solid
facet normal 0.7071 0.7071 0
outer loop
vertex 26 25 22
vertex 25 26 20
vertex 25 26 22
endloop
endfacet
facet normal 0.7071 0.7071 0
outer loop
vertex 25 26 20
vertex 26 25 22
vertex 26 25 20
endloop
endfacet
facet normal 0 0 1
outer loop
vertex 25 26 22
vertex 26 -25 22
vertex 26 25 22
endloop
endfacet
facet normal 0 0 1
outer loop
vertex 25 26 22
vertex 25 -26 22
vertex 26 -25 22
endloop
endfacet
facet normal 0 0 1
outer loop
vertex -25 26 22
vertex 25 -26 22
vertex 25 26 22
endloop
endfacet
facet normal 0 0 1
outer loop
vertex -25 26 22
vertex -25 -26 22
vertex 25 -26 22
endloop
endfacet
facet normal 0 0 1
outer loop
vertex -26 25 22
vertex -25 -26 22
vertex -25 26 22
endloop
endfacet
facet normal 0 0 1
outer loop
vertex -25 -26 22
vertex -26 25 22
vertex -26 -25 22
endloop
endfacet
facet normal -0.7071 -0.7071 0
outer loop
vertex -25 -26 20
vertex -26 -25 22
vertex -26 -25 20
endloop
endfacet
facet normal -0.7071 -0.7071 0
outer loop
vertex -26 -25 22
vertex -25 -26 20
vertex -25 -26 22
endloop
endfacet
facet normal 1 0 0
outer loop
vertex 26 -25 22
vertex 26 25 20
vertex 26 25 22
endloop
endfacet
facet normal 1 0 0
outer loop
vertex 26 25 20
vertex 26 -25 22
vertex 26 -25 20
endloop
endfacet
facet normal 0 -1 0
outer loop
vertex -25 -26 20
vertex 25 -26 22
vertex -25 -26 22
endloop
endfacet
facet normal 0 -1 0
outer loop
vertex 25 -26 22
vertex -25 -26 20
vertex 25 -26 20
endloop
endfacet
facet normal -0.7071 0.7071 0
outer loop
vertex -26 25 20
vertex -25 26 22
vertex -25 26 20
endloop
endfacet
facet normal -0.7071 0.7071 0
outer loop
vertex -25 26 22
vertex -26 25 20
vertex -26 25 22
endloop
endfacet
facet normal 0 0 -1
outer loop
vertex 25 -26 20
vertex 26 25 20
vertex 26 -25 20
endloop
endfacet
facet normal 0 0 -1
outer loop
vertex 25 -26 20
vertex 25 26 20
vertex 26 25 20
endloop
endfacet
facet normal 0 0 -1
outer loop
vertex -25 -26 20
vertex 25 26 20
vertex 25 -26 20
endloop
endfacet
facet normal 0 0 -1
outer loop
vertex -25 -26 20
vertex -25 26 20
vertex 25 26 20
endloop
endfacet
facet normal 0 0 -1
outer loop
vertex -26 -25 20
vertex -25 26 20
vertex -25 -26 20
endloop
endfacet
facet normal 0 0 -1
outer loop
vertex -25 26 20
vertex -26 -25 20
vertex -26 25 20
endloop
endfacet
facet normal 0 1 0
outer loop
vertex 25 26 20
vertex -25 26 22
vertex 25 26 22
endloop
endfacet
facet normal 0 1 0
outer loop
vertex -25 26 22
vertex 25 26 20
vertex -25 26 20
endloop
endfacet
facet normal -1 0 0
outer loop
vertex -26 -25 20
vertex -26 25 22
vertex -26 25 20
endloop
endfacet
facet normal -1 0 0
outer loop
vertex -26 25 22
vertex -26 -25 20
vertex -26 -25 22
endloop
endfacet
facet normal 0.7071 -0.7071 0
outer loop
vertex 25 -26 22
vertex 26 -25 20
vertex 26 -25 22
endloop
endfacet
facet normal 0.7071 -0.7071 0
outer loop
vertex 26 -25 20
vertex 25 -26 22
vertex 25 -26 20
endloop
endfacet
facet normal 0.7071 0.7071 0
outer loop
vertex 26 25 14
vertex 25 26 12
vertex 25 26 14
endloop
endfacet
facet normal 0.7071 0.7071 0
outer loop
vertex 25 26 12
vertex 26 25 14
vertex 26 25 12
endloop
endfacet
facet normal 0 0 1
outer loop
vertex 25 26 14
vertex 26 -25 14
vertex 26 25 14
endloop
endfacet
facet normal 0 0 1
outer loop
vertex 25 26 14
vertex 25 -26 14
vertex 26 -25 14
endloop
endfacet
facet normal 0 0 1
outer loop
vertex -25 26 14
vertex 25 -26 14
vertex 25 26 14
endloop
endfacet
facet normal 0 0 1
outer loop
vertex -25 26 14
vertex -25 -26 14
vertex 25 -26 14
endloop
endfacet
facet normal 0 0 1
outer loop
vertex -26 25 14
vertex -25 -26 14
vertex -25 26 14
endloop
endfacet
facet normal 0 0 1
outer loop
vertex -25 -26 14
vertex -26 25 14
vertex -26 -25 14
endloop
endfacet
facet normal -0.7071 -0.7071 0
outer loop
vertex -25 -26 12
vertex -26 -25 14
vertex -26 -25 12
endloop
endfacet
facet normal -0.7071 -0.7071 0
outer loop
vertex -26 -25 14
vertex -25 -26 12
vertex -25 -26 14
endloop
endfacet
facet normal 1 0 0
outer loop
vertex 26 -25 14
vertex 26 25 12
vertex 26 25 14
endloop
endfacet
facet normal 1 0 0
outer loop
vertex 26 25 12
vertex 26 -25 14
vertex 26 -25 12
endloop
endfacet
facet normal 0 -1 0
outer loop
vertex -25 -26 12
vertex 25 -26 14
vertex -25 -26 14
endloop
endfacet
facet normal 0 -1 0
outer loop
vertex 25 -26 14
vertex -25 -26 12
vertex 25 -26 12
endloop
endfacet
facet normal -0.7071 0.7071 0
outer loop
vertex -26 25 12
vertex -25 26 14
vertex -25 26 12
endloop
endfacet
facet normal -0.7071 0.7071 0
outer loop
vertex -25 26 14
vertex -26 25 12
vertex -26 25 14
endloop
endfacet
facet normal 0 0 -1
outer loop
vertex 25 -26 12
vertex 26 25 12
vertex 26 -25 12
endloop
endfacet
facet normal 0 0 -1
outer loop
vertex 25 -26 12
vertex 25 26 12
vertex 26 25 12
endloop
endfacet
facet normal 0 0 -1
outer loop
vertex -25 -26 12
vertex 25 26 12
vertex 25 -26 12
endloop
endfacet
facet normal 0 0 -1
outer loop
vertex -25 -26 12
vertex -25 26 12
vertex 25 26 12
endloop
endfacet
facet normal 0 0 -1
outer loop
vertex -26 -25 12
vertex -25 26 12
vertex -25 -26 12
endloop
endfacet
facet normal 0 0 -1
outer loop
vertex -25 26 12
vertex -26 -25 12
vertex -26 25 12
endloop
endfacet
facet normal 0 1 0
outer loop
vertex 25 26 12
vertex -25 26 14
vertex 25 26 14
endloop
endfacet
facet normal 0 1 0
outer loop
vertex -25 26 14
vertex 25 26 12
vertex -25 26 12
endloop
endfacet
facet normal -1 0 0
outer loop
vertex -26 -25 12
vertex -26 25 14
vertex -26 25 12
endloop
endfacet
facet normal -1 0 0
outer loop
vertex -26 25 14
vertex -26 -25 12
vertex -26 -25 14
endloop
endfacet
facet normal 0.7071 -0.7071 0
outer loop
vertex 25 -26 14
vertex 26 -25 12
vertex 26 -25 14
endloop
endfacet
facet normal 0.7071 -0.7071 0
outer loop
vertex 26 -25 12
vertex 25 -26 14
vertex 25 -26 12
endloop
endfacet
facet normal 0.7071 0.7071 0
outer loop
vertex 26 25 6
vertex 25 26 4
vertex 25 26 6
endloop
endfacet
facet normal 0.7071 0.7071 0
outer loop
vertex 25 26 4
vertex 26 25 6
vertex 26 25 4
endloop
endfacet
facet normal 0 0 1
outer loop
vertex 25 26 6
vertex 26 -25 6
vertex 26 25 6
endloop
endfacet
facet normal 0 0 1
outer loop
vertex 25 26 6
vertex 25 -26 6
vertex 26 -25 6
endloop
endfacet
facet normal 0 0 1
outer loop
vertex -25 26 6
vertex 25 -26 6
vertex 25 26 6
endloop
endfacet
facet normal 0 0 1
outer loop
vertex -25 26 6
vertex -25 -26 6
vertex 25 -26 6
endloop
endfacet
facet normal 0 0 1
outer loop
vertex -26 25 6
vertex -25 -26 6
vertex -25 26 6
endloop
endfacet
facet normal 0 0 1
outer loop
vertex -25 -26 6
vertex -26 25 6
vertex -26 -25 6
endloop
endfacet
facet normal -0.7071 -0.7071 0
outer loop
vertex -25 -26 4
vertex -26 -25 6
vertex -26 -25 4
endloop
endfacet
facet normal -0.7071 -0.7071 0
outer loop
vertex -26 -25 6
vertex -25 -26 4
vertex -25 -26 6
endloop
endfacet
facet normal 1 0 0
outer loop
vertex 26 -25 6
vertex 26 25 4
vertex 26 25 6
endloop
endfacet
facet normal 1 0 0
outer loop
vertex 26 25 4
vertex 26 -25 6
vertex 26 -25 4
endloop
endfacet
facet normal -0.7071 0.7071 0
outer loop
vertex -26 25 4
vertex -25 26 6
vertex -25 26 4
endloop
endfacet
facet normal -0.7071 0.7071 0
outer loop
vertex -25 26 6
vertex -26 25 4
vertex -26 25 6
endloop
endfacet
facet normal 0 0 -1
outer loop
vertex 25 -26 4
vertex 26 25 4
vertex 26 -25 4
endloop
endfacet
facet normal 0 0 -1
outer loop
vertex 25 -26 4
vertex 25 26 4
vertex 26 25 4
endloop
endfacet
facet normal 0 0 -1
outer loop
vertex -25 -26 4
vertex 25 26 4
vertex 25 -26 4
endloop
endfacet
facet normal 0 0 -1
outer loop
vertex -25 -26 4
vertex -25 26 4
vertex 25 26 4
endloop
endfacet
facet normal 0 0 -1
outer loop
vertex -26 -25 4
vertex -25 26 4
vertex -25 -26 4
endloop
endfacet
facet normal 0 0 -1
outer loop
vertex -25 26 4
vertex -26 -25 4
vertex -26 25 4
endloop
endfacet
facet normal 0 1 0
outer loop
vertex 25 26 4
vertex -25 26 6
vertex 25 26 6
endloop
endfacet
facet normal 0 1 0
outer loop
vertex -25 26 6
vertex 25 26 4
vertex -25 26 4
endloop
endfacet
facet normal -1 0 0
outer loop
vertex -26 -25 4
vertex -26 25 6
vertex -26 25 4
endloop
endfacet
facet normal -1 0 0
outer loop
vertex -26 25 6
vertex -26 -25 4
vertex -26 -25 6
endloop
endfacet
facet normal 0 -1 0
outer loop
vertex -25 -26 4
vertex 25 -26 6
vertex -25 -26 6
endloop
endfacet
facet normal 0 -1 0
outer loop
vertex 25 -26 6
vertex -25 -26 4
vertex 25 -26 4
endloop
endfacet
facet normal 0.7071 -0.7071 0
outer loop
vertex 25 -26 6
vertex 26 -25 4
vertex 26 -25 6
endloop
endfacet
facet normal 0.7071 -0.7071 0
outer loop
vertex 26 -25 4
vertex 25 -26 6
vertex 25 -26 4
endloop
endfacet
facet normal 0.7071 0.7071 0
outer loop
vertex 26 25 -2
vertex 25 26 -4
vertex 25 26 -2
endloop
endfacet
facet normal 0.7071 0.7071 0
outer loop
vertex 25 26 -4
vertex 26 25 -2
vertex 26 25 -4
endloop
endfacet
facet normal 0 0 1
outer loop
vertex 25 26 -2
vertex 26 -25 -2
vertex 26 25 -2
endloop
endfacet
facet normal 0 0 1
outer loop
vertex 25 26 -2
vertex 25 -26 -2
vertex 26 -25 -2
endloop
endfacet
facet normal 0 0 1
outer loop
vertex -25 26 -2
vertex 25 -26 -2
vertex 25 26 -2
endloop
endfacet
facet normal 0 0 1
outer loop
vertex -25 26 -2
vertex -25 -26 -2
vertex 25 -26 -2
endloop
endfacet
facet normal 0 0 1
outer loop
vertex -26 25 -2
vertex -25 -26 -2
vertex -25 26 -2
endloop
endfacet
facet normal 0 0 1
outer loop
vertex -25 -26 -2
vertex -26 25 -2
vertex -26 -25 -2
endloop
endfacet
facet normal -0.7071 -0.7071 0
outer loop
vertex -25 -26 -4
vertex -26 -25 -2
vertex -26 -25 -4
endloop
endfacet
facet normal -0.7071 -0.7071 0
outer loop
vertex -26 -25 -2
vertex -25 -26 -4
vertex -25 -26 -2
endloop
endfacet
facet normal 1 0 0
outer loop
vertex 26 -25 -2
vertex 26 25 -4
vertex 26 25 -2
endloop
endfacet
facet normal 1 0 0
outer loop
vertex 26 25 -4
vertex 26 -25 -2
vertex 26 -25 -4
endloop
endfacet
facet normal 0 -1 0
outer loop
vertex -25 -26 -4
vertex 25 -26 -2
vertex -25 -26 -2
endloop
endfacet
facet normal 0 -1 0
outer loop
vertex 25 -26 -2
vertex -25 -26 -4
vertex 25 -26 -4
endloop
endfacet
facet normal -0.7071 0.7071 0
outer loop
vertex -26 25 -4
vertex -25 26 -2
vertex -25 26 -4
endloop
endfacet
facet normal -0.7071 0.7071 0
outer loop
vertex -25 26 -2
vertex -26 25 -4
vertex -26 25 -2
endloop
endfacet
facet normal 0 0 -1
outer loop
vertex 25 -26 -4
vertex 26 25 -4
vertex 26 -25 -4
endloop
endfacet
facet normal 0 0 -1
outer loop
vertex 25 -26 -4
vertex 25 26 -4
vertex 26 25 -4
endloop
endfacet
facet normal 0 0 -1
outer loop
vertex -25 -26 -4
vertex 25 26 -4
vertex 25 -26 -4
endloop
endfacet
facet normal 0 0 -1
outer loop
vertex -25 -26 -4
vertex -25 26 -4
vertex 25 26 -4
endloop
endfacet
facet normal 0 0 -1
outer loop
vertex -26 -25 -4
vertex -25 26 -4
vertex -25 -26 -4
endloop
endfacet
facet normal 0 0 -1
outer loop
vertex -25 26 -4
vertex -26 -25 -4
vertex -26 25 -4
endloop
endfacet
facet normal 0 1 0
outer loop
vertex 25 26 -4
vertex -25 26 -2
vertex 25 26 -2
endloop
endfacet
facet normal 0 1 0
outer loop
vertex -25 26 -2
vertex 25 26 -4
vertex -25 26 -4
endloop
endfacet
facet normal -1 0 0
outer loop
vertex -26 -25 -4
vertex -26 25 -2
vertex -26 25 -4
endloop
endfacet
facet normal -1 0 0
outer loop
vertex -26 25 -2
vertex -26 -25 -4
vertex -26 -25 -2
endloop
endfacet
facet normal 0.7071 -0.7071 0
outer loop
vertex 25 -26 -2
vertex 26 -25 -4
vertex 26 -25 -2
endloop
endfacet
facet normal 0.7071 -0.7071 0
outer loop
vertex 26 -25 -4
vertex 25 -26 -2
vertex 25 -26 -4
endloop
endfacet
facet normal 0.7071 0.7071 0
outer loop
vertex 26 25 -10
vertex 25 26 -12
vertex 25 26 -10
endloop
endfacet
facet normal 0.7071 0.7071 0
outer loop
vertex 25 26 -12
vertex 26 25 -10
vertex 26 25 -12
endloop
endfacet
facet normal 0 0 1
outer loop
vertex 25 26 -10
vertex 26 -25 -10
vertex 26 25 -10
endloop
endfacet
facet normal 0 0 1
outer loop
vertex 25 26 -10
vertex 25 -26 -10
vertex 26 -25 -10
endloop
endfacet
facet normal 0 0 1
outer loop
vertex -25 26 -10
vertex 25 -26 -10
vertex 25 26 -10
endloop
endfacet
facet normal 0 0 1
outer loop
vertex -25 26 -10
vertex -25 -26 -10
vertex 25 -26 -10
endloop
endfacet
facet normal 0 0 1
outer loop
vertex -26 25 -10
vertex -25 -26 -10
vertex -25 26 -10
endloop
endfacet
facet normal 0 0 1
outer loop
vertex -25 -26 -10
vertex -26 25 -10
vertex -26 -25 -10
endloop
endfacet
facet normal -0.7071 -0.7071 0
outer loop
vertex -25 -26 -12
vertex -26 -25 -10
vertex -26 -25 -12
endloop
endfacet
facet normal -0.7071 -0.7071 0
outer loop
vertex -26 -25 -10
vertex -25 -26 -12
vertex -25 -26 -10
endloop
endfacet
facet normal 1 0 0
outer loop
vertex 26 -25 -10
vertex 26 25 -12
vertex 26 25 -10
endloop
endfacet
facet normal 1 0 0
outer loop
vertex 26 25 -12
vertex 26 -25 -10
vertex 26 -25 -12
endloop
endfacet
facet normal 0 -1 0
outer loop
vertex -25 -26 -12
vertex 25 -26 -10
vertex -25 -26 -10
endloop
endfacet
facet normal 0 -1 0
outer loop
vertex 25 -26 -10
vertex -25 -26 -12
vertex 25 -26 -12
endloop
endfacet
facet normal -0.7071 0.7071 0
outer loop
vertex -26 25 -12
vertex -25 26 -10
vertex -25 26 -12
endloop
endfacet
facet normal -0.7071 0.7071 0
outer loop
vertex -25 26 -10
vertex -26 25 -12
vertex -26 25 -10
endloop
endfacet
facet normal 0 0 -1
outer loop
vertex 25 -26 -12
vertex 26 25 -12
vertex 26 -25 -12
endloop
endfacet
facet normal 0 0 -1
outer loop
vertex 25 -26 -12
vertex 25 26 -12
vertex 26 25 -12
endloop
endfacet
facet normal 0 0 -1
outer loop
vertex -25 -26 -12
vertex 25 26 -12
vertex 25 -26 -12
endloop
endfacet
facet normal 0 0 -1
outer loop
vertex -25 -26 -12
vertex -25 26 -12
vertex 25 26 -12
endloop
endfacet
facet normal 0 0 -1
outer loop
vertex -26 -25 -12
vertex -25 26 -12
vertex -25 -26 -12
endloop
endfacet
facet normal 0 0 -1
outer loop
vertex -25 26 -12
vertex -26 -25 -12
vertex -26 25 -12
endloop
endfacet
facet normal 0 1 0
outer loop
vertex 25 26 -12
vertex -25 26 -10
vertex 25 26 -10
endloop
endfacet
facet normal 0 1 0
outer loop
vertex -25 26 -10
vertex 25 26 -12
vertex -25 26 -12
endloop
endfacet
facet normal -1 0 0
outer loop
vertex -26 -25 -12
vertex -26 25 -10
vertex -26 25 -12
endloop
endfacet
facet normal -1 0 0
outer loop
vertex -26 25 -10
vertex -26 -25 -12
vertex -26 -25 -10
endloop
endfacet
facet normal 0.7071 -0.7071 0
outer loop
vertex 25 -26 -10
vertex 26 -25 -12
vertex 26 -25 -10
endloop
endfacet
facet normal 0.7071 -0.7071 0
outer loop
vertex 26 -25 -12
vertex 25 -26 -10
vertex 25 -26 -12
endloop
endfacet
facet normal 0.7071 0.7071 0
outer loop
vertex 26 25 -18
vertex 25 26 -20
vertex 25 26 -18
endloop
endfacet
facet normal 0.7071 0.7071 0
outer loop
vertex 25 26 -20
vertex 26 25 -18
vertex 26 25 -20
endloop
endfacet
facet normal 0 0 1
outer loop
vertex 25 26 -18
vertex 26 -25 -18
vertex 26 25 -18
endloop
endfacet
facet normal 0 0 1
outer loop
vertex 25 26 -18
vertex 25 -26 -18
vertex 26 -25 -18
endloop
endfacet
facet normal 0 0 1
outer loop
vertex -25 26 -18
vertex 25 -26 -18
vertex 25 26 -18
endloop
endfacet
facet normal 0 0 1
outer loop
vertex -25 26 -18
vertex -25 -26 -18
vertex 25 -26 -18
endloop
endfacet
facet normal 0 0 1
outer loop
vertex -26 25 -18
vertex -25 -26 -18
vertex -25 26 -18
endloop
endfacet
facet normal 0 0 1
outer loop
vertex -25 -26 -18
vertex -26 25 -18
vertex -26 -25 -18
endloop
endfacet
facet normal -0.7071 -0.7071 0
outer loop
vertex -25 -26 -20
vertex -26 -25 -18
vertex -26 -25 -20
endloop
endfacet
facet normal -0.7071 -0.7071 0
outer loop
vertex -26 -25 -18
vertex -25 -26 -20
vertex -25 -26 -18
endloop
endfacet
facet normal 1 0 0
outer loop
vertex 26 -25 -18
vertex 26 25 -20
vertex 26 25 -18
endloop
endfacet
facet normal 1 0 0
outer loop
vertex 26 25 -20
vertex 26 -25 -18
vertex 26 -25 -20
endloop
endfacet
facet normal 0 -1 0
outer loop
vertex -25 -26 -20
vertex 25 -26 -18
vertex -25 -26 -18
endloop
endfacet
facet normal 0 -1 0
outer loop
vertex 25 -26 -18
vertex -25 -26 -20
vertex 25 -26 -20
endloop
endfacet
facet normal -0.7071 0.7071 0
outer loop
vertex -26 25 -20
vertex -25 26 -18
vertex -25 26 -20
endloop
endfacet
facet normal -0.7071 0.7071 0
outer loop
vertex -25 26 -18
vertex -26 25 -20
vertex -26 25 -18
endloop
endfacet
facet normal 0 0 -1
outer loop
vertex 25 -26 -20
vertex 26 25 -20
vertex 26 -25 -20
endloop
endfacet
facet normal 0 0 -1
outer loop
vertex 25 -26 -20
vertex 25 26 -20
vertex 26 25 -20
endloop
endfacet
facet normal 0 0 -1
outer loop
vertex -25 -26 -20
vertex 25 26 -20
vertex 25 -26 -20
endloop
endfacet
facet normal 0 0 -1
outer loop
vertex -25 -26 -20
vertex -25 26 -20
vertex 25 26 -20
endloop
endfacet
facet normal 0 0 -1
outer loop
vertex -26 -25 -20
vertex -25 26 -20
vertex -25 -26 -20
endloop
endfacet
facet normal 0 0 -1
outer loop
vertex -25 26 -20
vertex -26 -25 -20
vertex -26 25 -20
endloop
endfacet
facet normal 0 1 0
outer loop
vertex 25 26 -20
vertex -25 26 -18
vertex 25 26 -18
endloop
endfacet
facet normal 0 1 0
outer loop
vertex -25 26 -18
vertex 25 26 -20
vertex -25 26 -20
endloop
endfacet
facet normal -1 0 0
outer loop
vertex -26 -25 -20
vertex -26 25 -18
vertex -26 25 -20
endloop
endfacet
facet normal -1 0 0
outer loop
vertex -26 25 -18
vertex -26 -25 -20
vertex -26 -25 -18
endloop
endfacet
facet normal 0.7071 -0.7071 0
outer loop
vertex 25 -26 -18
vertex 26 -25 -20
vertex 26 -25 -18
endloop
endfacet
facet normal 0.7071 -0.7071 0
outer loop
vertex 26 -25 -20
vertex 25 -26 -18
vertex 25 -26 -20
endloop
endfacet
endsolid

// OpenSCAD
// Parameters for the flat plates
plate_width = 50;  // Width of the plate
plate_length = 50; // Length of the plate
plate_thickness = 2; // Reduced thickness of the plate to match the original model
plate_spacing = 8; // Adjusted spacing between plates to match the original model

// Function to create a flat plate with tapered edges
module flat_plate() {
    linear_extrude(height = plate_thickness)
        offset(r = 1)  // Taper the edges slightly
            square([plate_width, plate_length], center = true);
}

// Assembly of the flexible coupling
module flexible_coupling() {
    // Layer 1: Topmost flat plate
    translate([0, 0, plate_spacing * 2.5])
        flat_plate();

    // Layer 2: Second flat plate
    translate([0, 0, plate_spacing * 1.5])
        flat_plate();

    // Layer 3: Third flat plate
    translate([0, 0, plate_spacing * 0.5])
        flat_plate();

    // Layer 4: Fourth flat plate
    translate([0, 0, -plate_spacing * 0.5])
        flat_plate();

    // Layer 5: Fifth flat plate
    translate([0, 0, -plate_spacing * 1.5])
        flat_plate();

    // Layer 6: Bottommost flat plate
    translate([0, 0, -plate_spacing * 2.5])
        flat_plate();
}

// Render the flexible coupling
flexible_coupling();
